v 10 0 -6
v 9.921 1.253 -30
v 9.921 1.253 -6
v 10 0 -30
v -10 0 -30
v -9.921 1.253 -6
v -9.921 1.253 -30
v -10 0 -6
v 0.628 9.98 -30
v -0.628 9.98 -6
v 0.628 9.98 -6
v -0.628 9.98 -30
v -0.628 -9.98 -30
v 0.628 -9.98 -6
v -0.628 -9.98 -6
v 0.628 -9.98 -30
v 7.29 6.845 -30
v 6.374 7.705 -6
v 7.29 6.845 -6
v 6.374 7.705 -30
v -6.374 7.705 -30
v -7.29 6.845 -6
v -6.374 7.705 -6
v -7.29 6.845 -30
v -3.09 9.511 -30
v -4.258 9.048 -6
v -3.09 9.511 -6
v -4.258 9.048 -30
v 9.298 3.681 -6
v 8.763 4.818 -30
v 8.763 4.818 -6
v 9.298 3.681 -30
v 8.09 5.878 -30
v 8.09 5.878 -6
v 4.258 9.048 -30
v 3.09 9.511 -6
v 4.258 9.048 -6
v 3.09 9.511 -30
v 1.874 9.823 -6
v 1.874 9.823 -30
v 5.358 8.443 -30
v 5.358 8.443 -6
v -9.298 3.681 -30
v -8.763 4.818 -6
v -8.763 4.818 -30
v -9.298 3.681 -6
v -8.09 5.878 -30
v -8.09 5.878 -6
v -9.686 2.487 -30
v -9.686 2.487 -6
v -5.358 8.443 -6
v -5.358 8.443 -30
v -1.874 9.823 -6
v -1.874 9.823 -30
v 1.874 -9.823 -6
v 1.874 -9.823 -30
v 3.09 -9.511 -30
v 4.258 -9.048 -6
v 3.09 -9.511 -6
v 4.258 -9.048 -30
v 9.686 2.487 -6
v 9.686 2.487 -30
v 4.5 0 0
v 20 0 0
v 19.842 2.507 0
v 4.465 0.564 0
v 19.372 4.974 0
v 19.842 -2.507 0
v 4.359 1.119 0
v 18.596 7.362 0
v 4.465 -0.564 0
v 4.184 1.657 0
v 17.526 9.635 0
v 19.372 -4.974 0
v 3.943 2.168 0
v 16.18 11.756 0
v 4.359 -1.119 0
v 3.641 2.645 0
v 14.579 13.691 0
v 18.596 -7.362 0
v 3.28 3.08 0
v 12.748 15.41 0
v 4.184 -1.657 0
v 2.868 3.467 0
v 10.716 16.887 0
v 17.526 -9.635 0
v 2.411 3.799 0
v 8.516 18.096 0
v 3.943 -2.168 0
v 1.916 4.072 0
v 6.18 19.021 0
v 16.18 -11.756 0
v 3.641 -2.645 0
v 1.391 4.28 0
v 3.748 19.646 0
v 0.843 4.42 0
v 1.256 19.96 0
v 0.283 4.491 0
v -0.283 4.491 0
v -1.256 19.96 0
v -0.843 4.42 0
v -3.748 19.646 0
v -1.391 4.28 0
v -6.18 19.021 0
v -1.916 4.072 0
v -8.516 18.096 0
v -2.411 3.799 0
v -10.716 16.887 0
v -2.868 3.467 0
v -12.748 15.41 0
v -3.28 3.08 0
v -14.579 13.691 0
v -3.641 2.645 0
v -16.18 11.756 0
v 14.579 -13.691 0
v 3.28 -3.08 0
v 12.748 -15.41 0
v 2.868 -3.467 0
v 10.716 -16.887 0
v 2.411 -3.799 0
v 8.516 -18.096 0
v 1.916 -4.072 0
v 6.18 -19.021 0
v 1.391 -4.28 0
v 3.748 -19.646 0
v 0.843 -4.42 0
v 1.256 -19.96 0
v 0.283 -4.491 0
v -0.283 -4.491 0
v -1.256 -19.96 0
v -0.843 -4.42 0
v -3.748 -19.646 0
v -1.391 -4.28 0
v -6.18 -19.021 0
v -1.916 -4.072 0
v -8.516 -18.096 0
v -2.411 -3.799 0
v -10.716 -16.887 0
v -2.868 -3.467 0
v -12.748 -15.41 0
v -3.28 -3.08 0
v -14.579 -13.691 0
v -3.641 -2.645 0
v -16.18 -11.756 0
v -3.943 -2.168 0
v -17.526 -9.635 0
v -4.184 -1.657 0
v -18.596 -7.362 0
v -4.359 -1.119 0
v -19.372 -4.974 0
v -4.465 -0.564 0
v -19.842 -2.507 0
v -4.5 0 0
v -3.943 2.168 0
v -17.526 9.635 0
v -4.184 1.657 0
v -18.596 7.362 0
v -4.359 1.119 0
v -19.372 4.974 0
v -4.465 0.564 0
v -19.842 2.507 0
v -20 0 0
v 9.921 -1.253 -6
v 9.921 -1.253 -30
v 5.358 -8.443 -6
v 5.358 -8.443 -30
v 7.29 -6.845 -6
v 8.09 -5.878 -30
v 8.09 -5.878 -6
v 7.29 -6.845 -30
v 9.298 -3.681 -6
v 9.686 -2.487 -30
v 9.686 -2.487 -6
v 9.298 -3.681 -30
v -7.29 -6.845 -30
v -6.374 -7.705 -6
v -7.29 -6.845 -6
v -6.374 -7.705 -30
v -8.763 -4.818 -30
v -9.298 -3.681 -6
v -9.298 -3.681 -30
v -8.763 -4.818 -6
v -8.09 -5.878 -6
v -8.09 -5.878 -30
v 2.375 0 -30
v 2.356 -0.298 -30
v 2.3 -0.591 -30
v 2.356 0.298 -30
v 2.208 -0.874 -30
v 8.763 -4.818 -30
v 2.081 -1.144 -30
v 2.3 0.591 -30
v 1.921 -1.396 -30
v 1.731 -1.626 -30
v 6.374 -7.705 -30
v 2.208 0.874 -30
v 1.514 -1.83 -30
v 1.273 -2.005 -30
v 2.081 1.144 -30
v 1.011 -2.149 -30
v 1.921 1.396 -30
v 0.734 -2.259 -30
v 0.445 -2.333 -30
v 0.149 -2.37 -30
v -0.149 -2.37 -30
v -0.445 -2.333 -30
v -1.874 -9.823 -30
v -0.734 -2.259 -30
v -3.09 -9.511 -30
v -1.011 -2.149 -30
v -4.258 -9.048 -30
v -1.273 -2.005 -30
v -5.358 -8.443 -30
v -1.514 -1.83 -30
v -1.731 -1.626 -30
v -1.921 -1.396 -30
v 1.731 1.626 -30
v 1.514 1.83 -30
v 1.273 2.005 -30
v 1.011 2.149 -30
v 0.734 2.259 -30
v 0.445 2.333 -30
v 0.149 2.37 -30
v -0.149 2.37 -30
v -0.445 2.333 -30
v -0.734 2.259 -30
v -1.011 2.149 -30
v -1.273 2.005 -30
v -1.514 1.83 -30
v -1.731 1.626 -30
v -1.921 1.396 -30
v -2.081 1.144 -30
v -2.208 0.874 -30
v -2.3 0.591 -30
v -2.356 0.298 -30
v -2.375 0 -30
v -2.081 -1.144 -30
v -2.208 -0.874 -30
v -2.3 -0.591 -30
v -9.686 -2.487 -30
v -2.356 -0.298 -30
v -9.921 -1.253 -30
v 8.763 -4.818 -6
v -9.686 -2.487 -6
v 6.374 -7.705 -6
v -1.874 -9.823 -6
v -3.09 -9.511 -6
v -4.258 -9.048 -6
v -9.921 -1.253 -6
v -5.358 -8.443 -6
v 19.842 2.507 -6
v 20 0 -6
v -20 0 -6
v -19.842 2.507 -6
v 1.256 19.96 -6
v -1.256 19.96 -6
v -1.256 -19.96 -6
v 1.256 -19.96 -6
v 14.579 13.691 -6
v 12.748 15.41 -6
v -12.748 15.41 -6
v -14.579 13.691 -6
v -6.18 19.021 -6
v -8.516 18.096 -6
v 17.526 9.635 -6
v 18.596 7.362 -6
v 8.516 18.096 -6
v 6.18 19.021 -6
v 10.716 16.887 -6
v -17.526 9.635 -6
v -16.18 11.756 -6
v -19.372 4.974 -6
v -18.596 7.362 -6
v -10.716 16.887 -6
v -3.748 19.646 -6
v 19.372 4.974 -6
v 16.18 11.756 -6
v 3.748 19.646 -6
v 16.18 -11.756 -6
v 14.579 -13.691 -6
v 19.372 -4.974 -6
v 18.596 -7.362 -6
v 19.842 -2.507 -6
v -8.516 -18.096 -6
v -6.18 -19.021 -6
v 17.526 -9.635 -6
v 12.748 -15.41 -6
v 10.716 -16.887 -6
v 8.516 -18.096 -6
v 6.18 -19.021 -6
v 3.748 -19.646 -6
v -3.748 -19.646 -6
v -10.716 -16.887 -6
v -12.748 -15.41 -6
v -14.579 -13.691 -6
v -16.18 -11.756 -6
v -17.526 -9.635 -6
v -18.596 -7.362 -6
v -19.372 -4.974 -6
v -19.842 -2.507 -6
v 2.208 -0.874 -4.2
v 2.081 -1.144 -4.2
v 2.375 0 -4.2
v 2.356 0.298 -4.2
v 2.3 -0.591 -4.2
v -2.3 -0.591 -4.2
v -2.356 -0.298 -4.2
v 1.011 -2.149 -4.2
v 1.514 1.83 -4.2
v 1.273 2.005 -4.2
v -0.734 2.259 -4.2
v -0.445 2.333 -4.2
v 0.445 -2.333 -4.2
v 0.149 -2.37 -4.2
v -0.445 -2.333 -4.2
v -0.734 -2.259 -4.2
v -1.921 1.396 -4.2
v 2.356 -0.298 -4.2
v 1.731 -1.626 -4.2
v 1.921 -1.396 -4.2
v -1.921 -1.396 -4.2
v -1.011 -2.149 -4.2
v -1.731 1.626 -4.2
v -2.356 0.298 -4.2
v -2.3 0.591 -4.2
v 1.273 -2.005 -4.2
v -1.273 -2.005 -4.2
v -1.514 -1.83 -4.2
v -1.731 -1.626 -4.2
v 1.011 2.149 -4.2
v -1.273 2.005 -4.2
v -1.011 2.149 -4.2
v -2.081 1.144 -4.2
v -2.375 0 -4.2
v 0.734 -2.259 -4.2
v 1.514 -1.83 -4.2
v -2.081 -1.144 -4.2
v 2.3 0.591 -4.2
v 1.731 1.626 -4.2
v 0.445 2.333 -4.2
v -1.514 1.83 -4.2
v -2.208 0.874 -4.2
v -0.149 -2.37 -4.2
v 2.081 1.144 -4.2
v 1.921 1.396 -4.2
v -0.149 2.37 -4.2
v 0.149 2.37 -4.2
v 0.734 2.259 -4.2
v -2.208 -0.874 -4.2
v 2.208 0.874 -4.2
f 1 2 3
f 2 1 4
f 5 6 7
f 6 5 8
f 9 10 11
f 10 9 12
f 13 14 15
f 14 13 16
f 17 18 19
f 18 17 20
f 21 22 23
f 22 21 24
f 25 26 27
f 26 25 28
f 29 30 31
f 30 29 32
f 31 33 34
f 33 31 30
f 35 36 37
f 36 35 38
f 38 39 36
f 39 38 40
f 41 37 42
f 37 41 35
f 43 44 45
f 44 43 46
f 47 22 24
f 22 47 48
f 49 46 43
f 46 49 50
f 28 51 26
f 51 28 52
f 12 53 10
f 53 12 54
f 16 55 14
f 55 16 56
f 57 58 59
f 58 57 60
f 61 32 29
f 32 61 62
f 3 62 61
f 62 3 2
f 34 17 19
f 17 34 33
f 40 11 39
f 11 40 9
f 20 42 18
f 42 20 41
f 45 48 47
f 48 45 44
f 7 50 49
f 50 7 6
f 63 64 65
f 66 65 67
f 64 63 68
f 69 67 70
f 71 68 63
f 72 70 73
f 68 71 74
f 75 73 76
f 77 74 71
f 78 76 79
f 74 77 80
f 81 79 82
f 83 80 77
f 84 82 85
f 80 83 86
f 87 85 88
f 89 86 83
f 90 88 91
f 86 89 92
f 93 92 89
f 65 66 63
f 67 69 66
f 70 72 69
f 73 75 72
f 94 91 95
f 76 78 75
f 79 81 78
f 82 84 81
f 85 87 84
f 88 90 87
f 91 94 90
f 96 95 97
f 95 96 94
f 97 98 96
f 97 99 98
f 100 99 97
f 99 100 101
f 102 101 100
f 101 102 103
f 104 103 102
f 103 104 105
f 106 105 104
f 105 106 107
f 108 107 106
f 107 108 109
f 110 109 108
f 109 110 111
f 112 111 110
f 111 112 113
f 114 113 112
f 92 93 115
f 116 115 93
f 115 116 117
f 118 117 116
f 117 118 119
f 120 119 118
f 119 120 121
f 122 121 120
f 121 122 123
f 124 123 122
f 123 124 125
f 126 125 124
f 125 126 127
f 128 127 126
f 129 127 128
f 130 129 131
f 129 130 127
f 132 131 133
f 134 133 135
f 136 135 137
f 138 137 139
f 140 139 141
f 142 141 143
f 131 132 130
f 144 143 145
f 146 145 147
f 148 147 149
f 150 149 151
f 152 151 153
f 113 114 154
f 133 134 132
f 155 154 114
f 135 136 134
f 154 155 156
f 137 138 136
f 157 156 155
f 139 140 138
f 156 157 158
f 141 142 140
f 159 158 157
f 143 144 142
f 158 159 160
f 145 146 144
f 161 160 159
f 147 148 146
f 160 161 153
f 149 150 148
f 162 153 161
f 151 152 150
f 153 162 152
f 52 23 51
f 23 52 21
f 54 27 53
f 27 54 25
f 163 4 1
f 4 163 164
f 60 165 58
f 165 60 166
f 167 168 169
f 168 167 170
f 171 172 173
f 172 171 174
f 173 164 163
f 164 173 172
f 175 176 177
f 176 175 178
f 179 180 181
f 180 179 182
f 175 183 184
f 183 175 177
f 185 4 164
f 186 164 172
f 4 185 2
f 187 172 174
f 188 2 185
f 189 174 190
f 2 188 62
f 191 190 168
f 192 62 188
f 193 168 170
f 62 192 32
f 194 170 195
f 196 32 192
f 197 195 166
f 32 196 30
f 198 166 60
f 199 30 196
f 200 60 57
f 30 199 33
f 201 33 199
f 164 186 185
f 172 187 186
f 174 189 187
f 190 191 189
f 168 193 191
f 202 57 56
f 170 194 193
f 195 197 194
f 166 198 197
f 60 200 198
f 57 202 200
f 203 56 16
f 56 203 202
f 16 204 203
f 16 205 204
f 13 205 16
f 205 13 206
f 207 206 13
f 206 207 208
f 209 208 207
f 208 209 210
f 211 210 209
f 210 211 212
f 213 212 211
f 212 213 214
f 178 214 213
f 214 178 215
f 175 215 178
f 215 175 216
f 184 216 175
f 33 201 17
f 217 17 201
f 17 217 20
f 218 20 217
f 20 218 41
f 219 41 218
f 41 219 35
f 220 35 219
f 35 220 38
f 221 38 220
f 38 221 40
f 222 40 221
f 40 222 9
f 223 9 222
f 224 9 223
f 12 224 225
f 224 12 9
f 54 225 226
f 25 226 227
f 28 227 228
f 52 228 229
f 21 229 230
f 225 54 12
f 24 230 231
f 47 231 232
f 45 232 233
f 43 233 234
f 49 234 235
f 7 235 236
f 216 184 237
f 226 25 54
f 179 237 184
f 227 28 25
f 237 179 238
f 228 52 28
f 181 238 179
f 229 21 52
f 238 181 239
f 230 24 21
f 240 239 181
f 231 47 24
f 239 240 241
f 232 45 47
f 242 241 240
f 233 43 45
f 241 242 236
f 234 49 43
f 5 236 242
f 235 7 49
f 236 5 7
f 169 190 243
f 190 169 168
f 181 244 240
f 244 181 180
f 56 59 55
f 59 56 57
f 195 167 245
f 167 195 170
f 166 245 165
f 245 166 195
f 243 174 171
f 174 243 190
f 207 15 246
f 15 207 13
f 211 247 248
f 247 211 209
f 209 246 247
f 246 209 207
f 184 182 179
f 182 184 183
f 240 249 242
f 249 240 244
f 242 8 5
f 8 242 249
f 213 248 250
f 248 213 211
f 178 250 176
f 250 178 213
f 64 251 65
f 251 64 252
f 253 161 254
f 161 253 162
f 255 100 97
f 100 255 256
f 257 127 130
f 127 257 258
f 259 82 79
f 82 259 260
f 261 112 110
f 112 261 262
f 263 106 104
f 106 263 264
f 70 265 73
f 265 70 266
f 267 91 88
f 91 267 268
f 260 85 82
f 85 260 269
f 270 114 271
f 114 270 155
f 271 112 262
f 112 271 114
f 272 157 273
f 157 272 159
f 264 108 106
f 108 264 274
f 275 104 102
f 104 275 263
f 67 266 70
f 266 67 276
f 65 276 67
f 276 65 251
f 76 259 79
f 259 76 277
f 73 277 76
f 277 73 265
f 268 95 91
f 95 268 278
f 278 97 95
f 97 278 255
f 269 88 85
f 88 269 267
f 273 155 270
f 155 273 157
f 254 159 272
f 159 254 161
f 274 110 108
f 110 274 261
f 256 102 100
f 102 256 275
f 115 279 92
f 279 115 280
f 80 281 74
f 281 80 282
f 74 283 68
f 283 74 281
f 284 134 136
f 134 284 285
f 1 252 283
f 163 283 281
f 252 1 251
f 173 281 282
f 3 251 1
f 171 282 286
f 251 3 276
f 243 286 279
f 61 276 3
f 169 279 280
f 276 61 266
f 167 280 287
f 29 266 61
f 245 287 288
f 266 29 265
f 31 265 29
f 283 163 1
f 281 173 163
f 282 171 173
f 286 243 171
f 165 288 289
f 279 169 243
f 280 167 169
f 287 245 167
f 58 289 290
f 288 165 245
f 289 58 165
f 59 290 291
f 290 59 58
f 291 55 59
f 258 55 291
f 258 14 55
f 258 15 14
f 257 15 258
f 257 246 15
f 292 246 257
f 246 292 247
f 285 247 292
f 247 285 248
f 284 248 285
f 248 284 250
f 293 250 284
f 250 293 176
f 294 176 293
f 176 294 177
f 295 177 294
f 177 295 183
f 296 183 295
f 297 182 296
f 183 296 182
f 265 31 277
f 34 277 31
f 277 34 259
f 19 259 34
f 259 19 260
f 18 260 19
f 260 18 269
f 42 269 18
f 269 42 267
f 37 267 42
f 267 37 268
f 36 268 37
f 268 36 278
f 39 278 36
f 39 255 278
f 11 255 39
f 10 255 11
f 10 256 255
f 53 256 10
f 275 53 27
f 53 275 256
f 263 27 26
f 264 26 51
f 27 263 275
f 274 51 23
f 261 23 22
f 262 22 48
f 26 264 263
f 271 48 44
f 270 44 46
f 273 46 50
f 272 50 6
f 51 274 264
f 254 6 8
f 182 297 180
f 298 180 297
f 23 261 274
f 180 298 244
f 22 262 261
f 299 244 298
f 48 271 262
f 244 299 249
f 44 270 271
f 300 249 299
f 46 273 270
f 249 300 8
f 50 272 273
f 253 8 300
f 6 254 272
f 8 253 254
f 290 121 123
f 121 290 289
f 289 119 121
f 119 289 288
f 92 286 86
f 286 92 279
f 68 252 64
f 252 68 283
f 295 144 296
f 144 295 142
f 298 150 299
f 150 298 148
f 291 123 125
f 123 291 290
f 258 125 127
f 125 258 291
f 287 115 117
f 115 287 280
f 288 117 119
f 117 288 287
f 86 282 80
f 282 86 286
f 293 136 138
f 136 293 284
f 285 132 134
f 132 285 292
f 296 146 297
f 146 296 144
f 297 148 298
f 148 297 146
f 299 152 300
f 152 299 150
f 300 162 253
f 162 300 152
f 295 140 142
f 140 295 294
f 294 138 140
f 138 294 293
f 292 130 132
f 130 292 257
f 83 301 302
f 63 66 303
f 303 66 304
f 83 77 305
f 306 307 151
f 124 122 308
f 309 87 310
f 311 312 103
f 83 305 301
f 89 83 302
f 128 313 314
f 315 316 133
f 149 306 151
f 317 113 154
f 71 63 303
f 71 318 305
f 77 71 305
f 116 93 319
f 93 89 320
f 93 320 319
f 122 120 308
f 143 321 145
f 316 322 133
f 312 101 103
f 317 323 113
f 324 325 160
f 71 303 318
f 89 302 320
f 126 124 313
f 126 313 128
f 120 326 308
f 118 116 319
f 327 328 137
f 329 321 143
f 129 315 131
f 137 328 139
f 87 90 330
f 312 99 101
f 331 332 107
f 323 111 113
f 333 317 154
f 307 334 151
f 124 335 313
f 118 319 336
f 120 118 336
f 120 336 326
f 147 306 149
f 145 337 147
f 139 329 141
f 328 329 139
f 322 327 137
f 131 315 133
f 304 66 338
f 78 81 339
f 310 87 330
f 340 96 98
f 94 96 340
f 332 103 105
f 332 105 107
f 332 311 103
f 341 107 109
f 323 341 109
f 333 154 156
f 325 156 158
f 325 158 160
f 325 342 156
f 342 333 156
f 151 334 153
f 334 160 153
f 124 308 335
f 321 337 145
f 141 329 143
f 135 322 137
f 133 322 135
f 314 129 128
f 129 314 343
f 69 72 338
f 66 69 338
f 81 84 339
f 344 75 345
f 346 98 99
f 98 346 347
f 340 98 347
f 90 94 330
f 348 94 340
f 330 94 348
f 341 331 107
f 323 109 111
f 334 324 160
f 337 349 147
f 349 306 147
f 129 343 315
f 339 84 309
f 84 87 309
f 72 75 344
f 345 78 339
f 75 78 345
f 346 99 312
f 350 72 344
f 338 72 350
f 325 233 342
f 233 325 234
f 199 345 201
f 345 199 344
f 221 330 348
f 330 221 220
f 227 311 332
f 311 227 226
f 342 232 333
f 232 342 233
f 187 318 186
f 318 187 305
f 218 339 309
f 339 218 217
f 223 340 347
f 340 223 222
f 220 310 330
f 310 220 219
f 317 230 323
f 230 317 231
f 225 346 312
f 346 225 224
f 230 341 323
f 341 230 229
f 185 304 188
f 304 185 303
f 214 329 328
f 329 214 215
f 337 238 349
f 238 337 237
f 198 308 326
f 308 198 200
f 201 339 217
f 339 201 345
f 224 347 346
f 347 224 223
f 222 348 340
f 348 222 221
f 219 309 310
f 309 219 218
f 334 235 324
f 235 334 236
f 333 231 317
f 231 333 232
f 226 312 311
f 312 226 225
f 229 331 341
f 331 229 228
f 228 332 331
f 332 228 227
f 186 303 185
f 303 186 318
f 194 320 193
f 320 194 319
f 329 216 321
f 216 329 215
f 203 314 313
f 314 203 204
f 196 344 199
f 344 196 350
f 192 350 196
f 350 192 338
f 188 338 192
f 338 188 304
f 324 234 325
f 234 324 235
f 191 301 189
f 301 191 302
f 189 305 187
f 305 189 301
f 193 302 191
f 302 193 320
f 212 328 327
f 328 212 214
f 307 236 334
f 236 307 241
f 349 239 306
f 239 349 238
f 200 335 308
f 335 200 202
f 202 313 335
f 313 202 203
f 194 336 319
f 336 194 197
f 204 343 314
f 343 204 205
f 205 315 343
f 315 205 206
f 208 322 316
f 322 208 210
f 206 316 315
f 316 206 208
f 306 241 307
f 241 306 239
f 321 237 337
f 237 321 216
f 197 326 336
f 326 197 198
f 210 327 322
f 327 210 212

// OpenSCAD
$fn = 50;


difference() {
	union() {
		translate(v = [0, 0, -30.0000000000]) {
			cylinder(h = 30, r = 10.0000000000);
		}
		translate(v = [0, 0, -6.0000000000]) {
			cylinder(h = 6, r = 20.0000000000);
		}
	}
	union() {
		translate(v = [0, 0, 0]) {
			rotate(a = [0, 0, 0]) {
				difference() {
					union() {
						#translate(v = [0, 0, -30.0000000000]) {
							cylinder(h = 30, r = 2.2500000000);
						}
						#translate(v = [0, 0, -4.2000000000]) {
							cylinder(h = 4.2000000000, r1 = 2.3750000000, r2 = 4.5000000000);
						}
						#translate(v = [0, 0, -30.0000000000]) {
							cylinder(h = 30, r = 2.3750000000);
						}
						#translate(v = [0, 0, -30.0000000000]) {
							cylinder(h = 30, r = 2.2500000000);
						}
					}
					union();
				}
			}
		}
	}
}
